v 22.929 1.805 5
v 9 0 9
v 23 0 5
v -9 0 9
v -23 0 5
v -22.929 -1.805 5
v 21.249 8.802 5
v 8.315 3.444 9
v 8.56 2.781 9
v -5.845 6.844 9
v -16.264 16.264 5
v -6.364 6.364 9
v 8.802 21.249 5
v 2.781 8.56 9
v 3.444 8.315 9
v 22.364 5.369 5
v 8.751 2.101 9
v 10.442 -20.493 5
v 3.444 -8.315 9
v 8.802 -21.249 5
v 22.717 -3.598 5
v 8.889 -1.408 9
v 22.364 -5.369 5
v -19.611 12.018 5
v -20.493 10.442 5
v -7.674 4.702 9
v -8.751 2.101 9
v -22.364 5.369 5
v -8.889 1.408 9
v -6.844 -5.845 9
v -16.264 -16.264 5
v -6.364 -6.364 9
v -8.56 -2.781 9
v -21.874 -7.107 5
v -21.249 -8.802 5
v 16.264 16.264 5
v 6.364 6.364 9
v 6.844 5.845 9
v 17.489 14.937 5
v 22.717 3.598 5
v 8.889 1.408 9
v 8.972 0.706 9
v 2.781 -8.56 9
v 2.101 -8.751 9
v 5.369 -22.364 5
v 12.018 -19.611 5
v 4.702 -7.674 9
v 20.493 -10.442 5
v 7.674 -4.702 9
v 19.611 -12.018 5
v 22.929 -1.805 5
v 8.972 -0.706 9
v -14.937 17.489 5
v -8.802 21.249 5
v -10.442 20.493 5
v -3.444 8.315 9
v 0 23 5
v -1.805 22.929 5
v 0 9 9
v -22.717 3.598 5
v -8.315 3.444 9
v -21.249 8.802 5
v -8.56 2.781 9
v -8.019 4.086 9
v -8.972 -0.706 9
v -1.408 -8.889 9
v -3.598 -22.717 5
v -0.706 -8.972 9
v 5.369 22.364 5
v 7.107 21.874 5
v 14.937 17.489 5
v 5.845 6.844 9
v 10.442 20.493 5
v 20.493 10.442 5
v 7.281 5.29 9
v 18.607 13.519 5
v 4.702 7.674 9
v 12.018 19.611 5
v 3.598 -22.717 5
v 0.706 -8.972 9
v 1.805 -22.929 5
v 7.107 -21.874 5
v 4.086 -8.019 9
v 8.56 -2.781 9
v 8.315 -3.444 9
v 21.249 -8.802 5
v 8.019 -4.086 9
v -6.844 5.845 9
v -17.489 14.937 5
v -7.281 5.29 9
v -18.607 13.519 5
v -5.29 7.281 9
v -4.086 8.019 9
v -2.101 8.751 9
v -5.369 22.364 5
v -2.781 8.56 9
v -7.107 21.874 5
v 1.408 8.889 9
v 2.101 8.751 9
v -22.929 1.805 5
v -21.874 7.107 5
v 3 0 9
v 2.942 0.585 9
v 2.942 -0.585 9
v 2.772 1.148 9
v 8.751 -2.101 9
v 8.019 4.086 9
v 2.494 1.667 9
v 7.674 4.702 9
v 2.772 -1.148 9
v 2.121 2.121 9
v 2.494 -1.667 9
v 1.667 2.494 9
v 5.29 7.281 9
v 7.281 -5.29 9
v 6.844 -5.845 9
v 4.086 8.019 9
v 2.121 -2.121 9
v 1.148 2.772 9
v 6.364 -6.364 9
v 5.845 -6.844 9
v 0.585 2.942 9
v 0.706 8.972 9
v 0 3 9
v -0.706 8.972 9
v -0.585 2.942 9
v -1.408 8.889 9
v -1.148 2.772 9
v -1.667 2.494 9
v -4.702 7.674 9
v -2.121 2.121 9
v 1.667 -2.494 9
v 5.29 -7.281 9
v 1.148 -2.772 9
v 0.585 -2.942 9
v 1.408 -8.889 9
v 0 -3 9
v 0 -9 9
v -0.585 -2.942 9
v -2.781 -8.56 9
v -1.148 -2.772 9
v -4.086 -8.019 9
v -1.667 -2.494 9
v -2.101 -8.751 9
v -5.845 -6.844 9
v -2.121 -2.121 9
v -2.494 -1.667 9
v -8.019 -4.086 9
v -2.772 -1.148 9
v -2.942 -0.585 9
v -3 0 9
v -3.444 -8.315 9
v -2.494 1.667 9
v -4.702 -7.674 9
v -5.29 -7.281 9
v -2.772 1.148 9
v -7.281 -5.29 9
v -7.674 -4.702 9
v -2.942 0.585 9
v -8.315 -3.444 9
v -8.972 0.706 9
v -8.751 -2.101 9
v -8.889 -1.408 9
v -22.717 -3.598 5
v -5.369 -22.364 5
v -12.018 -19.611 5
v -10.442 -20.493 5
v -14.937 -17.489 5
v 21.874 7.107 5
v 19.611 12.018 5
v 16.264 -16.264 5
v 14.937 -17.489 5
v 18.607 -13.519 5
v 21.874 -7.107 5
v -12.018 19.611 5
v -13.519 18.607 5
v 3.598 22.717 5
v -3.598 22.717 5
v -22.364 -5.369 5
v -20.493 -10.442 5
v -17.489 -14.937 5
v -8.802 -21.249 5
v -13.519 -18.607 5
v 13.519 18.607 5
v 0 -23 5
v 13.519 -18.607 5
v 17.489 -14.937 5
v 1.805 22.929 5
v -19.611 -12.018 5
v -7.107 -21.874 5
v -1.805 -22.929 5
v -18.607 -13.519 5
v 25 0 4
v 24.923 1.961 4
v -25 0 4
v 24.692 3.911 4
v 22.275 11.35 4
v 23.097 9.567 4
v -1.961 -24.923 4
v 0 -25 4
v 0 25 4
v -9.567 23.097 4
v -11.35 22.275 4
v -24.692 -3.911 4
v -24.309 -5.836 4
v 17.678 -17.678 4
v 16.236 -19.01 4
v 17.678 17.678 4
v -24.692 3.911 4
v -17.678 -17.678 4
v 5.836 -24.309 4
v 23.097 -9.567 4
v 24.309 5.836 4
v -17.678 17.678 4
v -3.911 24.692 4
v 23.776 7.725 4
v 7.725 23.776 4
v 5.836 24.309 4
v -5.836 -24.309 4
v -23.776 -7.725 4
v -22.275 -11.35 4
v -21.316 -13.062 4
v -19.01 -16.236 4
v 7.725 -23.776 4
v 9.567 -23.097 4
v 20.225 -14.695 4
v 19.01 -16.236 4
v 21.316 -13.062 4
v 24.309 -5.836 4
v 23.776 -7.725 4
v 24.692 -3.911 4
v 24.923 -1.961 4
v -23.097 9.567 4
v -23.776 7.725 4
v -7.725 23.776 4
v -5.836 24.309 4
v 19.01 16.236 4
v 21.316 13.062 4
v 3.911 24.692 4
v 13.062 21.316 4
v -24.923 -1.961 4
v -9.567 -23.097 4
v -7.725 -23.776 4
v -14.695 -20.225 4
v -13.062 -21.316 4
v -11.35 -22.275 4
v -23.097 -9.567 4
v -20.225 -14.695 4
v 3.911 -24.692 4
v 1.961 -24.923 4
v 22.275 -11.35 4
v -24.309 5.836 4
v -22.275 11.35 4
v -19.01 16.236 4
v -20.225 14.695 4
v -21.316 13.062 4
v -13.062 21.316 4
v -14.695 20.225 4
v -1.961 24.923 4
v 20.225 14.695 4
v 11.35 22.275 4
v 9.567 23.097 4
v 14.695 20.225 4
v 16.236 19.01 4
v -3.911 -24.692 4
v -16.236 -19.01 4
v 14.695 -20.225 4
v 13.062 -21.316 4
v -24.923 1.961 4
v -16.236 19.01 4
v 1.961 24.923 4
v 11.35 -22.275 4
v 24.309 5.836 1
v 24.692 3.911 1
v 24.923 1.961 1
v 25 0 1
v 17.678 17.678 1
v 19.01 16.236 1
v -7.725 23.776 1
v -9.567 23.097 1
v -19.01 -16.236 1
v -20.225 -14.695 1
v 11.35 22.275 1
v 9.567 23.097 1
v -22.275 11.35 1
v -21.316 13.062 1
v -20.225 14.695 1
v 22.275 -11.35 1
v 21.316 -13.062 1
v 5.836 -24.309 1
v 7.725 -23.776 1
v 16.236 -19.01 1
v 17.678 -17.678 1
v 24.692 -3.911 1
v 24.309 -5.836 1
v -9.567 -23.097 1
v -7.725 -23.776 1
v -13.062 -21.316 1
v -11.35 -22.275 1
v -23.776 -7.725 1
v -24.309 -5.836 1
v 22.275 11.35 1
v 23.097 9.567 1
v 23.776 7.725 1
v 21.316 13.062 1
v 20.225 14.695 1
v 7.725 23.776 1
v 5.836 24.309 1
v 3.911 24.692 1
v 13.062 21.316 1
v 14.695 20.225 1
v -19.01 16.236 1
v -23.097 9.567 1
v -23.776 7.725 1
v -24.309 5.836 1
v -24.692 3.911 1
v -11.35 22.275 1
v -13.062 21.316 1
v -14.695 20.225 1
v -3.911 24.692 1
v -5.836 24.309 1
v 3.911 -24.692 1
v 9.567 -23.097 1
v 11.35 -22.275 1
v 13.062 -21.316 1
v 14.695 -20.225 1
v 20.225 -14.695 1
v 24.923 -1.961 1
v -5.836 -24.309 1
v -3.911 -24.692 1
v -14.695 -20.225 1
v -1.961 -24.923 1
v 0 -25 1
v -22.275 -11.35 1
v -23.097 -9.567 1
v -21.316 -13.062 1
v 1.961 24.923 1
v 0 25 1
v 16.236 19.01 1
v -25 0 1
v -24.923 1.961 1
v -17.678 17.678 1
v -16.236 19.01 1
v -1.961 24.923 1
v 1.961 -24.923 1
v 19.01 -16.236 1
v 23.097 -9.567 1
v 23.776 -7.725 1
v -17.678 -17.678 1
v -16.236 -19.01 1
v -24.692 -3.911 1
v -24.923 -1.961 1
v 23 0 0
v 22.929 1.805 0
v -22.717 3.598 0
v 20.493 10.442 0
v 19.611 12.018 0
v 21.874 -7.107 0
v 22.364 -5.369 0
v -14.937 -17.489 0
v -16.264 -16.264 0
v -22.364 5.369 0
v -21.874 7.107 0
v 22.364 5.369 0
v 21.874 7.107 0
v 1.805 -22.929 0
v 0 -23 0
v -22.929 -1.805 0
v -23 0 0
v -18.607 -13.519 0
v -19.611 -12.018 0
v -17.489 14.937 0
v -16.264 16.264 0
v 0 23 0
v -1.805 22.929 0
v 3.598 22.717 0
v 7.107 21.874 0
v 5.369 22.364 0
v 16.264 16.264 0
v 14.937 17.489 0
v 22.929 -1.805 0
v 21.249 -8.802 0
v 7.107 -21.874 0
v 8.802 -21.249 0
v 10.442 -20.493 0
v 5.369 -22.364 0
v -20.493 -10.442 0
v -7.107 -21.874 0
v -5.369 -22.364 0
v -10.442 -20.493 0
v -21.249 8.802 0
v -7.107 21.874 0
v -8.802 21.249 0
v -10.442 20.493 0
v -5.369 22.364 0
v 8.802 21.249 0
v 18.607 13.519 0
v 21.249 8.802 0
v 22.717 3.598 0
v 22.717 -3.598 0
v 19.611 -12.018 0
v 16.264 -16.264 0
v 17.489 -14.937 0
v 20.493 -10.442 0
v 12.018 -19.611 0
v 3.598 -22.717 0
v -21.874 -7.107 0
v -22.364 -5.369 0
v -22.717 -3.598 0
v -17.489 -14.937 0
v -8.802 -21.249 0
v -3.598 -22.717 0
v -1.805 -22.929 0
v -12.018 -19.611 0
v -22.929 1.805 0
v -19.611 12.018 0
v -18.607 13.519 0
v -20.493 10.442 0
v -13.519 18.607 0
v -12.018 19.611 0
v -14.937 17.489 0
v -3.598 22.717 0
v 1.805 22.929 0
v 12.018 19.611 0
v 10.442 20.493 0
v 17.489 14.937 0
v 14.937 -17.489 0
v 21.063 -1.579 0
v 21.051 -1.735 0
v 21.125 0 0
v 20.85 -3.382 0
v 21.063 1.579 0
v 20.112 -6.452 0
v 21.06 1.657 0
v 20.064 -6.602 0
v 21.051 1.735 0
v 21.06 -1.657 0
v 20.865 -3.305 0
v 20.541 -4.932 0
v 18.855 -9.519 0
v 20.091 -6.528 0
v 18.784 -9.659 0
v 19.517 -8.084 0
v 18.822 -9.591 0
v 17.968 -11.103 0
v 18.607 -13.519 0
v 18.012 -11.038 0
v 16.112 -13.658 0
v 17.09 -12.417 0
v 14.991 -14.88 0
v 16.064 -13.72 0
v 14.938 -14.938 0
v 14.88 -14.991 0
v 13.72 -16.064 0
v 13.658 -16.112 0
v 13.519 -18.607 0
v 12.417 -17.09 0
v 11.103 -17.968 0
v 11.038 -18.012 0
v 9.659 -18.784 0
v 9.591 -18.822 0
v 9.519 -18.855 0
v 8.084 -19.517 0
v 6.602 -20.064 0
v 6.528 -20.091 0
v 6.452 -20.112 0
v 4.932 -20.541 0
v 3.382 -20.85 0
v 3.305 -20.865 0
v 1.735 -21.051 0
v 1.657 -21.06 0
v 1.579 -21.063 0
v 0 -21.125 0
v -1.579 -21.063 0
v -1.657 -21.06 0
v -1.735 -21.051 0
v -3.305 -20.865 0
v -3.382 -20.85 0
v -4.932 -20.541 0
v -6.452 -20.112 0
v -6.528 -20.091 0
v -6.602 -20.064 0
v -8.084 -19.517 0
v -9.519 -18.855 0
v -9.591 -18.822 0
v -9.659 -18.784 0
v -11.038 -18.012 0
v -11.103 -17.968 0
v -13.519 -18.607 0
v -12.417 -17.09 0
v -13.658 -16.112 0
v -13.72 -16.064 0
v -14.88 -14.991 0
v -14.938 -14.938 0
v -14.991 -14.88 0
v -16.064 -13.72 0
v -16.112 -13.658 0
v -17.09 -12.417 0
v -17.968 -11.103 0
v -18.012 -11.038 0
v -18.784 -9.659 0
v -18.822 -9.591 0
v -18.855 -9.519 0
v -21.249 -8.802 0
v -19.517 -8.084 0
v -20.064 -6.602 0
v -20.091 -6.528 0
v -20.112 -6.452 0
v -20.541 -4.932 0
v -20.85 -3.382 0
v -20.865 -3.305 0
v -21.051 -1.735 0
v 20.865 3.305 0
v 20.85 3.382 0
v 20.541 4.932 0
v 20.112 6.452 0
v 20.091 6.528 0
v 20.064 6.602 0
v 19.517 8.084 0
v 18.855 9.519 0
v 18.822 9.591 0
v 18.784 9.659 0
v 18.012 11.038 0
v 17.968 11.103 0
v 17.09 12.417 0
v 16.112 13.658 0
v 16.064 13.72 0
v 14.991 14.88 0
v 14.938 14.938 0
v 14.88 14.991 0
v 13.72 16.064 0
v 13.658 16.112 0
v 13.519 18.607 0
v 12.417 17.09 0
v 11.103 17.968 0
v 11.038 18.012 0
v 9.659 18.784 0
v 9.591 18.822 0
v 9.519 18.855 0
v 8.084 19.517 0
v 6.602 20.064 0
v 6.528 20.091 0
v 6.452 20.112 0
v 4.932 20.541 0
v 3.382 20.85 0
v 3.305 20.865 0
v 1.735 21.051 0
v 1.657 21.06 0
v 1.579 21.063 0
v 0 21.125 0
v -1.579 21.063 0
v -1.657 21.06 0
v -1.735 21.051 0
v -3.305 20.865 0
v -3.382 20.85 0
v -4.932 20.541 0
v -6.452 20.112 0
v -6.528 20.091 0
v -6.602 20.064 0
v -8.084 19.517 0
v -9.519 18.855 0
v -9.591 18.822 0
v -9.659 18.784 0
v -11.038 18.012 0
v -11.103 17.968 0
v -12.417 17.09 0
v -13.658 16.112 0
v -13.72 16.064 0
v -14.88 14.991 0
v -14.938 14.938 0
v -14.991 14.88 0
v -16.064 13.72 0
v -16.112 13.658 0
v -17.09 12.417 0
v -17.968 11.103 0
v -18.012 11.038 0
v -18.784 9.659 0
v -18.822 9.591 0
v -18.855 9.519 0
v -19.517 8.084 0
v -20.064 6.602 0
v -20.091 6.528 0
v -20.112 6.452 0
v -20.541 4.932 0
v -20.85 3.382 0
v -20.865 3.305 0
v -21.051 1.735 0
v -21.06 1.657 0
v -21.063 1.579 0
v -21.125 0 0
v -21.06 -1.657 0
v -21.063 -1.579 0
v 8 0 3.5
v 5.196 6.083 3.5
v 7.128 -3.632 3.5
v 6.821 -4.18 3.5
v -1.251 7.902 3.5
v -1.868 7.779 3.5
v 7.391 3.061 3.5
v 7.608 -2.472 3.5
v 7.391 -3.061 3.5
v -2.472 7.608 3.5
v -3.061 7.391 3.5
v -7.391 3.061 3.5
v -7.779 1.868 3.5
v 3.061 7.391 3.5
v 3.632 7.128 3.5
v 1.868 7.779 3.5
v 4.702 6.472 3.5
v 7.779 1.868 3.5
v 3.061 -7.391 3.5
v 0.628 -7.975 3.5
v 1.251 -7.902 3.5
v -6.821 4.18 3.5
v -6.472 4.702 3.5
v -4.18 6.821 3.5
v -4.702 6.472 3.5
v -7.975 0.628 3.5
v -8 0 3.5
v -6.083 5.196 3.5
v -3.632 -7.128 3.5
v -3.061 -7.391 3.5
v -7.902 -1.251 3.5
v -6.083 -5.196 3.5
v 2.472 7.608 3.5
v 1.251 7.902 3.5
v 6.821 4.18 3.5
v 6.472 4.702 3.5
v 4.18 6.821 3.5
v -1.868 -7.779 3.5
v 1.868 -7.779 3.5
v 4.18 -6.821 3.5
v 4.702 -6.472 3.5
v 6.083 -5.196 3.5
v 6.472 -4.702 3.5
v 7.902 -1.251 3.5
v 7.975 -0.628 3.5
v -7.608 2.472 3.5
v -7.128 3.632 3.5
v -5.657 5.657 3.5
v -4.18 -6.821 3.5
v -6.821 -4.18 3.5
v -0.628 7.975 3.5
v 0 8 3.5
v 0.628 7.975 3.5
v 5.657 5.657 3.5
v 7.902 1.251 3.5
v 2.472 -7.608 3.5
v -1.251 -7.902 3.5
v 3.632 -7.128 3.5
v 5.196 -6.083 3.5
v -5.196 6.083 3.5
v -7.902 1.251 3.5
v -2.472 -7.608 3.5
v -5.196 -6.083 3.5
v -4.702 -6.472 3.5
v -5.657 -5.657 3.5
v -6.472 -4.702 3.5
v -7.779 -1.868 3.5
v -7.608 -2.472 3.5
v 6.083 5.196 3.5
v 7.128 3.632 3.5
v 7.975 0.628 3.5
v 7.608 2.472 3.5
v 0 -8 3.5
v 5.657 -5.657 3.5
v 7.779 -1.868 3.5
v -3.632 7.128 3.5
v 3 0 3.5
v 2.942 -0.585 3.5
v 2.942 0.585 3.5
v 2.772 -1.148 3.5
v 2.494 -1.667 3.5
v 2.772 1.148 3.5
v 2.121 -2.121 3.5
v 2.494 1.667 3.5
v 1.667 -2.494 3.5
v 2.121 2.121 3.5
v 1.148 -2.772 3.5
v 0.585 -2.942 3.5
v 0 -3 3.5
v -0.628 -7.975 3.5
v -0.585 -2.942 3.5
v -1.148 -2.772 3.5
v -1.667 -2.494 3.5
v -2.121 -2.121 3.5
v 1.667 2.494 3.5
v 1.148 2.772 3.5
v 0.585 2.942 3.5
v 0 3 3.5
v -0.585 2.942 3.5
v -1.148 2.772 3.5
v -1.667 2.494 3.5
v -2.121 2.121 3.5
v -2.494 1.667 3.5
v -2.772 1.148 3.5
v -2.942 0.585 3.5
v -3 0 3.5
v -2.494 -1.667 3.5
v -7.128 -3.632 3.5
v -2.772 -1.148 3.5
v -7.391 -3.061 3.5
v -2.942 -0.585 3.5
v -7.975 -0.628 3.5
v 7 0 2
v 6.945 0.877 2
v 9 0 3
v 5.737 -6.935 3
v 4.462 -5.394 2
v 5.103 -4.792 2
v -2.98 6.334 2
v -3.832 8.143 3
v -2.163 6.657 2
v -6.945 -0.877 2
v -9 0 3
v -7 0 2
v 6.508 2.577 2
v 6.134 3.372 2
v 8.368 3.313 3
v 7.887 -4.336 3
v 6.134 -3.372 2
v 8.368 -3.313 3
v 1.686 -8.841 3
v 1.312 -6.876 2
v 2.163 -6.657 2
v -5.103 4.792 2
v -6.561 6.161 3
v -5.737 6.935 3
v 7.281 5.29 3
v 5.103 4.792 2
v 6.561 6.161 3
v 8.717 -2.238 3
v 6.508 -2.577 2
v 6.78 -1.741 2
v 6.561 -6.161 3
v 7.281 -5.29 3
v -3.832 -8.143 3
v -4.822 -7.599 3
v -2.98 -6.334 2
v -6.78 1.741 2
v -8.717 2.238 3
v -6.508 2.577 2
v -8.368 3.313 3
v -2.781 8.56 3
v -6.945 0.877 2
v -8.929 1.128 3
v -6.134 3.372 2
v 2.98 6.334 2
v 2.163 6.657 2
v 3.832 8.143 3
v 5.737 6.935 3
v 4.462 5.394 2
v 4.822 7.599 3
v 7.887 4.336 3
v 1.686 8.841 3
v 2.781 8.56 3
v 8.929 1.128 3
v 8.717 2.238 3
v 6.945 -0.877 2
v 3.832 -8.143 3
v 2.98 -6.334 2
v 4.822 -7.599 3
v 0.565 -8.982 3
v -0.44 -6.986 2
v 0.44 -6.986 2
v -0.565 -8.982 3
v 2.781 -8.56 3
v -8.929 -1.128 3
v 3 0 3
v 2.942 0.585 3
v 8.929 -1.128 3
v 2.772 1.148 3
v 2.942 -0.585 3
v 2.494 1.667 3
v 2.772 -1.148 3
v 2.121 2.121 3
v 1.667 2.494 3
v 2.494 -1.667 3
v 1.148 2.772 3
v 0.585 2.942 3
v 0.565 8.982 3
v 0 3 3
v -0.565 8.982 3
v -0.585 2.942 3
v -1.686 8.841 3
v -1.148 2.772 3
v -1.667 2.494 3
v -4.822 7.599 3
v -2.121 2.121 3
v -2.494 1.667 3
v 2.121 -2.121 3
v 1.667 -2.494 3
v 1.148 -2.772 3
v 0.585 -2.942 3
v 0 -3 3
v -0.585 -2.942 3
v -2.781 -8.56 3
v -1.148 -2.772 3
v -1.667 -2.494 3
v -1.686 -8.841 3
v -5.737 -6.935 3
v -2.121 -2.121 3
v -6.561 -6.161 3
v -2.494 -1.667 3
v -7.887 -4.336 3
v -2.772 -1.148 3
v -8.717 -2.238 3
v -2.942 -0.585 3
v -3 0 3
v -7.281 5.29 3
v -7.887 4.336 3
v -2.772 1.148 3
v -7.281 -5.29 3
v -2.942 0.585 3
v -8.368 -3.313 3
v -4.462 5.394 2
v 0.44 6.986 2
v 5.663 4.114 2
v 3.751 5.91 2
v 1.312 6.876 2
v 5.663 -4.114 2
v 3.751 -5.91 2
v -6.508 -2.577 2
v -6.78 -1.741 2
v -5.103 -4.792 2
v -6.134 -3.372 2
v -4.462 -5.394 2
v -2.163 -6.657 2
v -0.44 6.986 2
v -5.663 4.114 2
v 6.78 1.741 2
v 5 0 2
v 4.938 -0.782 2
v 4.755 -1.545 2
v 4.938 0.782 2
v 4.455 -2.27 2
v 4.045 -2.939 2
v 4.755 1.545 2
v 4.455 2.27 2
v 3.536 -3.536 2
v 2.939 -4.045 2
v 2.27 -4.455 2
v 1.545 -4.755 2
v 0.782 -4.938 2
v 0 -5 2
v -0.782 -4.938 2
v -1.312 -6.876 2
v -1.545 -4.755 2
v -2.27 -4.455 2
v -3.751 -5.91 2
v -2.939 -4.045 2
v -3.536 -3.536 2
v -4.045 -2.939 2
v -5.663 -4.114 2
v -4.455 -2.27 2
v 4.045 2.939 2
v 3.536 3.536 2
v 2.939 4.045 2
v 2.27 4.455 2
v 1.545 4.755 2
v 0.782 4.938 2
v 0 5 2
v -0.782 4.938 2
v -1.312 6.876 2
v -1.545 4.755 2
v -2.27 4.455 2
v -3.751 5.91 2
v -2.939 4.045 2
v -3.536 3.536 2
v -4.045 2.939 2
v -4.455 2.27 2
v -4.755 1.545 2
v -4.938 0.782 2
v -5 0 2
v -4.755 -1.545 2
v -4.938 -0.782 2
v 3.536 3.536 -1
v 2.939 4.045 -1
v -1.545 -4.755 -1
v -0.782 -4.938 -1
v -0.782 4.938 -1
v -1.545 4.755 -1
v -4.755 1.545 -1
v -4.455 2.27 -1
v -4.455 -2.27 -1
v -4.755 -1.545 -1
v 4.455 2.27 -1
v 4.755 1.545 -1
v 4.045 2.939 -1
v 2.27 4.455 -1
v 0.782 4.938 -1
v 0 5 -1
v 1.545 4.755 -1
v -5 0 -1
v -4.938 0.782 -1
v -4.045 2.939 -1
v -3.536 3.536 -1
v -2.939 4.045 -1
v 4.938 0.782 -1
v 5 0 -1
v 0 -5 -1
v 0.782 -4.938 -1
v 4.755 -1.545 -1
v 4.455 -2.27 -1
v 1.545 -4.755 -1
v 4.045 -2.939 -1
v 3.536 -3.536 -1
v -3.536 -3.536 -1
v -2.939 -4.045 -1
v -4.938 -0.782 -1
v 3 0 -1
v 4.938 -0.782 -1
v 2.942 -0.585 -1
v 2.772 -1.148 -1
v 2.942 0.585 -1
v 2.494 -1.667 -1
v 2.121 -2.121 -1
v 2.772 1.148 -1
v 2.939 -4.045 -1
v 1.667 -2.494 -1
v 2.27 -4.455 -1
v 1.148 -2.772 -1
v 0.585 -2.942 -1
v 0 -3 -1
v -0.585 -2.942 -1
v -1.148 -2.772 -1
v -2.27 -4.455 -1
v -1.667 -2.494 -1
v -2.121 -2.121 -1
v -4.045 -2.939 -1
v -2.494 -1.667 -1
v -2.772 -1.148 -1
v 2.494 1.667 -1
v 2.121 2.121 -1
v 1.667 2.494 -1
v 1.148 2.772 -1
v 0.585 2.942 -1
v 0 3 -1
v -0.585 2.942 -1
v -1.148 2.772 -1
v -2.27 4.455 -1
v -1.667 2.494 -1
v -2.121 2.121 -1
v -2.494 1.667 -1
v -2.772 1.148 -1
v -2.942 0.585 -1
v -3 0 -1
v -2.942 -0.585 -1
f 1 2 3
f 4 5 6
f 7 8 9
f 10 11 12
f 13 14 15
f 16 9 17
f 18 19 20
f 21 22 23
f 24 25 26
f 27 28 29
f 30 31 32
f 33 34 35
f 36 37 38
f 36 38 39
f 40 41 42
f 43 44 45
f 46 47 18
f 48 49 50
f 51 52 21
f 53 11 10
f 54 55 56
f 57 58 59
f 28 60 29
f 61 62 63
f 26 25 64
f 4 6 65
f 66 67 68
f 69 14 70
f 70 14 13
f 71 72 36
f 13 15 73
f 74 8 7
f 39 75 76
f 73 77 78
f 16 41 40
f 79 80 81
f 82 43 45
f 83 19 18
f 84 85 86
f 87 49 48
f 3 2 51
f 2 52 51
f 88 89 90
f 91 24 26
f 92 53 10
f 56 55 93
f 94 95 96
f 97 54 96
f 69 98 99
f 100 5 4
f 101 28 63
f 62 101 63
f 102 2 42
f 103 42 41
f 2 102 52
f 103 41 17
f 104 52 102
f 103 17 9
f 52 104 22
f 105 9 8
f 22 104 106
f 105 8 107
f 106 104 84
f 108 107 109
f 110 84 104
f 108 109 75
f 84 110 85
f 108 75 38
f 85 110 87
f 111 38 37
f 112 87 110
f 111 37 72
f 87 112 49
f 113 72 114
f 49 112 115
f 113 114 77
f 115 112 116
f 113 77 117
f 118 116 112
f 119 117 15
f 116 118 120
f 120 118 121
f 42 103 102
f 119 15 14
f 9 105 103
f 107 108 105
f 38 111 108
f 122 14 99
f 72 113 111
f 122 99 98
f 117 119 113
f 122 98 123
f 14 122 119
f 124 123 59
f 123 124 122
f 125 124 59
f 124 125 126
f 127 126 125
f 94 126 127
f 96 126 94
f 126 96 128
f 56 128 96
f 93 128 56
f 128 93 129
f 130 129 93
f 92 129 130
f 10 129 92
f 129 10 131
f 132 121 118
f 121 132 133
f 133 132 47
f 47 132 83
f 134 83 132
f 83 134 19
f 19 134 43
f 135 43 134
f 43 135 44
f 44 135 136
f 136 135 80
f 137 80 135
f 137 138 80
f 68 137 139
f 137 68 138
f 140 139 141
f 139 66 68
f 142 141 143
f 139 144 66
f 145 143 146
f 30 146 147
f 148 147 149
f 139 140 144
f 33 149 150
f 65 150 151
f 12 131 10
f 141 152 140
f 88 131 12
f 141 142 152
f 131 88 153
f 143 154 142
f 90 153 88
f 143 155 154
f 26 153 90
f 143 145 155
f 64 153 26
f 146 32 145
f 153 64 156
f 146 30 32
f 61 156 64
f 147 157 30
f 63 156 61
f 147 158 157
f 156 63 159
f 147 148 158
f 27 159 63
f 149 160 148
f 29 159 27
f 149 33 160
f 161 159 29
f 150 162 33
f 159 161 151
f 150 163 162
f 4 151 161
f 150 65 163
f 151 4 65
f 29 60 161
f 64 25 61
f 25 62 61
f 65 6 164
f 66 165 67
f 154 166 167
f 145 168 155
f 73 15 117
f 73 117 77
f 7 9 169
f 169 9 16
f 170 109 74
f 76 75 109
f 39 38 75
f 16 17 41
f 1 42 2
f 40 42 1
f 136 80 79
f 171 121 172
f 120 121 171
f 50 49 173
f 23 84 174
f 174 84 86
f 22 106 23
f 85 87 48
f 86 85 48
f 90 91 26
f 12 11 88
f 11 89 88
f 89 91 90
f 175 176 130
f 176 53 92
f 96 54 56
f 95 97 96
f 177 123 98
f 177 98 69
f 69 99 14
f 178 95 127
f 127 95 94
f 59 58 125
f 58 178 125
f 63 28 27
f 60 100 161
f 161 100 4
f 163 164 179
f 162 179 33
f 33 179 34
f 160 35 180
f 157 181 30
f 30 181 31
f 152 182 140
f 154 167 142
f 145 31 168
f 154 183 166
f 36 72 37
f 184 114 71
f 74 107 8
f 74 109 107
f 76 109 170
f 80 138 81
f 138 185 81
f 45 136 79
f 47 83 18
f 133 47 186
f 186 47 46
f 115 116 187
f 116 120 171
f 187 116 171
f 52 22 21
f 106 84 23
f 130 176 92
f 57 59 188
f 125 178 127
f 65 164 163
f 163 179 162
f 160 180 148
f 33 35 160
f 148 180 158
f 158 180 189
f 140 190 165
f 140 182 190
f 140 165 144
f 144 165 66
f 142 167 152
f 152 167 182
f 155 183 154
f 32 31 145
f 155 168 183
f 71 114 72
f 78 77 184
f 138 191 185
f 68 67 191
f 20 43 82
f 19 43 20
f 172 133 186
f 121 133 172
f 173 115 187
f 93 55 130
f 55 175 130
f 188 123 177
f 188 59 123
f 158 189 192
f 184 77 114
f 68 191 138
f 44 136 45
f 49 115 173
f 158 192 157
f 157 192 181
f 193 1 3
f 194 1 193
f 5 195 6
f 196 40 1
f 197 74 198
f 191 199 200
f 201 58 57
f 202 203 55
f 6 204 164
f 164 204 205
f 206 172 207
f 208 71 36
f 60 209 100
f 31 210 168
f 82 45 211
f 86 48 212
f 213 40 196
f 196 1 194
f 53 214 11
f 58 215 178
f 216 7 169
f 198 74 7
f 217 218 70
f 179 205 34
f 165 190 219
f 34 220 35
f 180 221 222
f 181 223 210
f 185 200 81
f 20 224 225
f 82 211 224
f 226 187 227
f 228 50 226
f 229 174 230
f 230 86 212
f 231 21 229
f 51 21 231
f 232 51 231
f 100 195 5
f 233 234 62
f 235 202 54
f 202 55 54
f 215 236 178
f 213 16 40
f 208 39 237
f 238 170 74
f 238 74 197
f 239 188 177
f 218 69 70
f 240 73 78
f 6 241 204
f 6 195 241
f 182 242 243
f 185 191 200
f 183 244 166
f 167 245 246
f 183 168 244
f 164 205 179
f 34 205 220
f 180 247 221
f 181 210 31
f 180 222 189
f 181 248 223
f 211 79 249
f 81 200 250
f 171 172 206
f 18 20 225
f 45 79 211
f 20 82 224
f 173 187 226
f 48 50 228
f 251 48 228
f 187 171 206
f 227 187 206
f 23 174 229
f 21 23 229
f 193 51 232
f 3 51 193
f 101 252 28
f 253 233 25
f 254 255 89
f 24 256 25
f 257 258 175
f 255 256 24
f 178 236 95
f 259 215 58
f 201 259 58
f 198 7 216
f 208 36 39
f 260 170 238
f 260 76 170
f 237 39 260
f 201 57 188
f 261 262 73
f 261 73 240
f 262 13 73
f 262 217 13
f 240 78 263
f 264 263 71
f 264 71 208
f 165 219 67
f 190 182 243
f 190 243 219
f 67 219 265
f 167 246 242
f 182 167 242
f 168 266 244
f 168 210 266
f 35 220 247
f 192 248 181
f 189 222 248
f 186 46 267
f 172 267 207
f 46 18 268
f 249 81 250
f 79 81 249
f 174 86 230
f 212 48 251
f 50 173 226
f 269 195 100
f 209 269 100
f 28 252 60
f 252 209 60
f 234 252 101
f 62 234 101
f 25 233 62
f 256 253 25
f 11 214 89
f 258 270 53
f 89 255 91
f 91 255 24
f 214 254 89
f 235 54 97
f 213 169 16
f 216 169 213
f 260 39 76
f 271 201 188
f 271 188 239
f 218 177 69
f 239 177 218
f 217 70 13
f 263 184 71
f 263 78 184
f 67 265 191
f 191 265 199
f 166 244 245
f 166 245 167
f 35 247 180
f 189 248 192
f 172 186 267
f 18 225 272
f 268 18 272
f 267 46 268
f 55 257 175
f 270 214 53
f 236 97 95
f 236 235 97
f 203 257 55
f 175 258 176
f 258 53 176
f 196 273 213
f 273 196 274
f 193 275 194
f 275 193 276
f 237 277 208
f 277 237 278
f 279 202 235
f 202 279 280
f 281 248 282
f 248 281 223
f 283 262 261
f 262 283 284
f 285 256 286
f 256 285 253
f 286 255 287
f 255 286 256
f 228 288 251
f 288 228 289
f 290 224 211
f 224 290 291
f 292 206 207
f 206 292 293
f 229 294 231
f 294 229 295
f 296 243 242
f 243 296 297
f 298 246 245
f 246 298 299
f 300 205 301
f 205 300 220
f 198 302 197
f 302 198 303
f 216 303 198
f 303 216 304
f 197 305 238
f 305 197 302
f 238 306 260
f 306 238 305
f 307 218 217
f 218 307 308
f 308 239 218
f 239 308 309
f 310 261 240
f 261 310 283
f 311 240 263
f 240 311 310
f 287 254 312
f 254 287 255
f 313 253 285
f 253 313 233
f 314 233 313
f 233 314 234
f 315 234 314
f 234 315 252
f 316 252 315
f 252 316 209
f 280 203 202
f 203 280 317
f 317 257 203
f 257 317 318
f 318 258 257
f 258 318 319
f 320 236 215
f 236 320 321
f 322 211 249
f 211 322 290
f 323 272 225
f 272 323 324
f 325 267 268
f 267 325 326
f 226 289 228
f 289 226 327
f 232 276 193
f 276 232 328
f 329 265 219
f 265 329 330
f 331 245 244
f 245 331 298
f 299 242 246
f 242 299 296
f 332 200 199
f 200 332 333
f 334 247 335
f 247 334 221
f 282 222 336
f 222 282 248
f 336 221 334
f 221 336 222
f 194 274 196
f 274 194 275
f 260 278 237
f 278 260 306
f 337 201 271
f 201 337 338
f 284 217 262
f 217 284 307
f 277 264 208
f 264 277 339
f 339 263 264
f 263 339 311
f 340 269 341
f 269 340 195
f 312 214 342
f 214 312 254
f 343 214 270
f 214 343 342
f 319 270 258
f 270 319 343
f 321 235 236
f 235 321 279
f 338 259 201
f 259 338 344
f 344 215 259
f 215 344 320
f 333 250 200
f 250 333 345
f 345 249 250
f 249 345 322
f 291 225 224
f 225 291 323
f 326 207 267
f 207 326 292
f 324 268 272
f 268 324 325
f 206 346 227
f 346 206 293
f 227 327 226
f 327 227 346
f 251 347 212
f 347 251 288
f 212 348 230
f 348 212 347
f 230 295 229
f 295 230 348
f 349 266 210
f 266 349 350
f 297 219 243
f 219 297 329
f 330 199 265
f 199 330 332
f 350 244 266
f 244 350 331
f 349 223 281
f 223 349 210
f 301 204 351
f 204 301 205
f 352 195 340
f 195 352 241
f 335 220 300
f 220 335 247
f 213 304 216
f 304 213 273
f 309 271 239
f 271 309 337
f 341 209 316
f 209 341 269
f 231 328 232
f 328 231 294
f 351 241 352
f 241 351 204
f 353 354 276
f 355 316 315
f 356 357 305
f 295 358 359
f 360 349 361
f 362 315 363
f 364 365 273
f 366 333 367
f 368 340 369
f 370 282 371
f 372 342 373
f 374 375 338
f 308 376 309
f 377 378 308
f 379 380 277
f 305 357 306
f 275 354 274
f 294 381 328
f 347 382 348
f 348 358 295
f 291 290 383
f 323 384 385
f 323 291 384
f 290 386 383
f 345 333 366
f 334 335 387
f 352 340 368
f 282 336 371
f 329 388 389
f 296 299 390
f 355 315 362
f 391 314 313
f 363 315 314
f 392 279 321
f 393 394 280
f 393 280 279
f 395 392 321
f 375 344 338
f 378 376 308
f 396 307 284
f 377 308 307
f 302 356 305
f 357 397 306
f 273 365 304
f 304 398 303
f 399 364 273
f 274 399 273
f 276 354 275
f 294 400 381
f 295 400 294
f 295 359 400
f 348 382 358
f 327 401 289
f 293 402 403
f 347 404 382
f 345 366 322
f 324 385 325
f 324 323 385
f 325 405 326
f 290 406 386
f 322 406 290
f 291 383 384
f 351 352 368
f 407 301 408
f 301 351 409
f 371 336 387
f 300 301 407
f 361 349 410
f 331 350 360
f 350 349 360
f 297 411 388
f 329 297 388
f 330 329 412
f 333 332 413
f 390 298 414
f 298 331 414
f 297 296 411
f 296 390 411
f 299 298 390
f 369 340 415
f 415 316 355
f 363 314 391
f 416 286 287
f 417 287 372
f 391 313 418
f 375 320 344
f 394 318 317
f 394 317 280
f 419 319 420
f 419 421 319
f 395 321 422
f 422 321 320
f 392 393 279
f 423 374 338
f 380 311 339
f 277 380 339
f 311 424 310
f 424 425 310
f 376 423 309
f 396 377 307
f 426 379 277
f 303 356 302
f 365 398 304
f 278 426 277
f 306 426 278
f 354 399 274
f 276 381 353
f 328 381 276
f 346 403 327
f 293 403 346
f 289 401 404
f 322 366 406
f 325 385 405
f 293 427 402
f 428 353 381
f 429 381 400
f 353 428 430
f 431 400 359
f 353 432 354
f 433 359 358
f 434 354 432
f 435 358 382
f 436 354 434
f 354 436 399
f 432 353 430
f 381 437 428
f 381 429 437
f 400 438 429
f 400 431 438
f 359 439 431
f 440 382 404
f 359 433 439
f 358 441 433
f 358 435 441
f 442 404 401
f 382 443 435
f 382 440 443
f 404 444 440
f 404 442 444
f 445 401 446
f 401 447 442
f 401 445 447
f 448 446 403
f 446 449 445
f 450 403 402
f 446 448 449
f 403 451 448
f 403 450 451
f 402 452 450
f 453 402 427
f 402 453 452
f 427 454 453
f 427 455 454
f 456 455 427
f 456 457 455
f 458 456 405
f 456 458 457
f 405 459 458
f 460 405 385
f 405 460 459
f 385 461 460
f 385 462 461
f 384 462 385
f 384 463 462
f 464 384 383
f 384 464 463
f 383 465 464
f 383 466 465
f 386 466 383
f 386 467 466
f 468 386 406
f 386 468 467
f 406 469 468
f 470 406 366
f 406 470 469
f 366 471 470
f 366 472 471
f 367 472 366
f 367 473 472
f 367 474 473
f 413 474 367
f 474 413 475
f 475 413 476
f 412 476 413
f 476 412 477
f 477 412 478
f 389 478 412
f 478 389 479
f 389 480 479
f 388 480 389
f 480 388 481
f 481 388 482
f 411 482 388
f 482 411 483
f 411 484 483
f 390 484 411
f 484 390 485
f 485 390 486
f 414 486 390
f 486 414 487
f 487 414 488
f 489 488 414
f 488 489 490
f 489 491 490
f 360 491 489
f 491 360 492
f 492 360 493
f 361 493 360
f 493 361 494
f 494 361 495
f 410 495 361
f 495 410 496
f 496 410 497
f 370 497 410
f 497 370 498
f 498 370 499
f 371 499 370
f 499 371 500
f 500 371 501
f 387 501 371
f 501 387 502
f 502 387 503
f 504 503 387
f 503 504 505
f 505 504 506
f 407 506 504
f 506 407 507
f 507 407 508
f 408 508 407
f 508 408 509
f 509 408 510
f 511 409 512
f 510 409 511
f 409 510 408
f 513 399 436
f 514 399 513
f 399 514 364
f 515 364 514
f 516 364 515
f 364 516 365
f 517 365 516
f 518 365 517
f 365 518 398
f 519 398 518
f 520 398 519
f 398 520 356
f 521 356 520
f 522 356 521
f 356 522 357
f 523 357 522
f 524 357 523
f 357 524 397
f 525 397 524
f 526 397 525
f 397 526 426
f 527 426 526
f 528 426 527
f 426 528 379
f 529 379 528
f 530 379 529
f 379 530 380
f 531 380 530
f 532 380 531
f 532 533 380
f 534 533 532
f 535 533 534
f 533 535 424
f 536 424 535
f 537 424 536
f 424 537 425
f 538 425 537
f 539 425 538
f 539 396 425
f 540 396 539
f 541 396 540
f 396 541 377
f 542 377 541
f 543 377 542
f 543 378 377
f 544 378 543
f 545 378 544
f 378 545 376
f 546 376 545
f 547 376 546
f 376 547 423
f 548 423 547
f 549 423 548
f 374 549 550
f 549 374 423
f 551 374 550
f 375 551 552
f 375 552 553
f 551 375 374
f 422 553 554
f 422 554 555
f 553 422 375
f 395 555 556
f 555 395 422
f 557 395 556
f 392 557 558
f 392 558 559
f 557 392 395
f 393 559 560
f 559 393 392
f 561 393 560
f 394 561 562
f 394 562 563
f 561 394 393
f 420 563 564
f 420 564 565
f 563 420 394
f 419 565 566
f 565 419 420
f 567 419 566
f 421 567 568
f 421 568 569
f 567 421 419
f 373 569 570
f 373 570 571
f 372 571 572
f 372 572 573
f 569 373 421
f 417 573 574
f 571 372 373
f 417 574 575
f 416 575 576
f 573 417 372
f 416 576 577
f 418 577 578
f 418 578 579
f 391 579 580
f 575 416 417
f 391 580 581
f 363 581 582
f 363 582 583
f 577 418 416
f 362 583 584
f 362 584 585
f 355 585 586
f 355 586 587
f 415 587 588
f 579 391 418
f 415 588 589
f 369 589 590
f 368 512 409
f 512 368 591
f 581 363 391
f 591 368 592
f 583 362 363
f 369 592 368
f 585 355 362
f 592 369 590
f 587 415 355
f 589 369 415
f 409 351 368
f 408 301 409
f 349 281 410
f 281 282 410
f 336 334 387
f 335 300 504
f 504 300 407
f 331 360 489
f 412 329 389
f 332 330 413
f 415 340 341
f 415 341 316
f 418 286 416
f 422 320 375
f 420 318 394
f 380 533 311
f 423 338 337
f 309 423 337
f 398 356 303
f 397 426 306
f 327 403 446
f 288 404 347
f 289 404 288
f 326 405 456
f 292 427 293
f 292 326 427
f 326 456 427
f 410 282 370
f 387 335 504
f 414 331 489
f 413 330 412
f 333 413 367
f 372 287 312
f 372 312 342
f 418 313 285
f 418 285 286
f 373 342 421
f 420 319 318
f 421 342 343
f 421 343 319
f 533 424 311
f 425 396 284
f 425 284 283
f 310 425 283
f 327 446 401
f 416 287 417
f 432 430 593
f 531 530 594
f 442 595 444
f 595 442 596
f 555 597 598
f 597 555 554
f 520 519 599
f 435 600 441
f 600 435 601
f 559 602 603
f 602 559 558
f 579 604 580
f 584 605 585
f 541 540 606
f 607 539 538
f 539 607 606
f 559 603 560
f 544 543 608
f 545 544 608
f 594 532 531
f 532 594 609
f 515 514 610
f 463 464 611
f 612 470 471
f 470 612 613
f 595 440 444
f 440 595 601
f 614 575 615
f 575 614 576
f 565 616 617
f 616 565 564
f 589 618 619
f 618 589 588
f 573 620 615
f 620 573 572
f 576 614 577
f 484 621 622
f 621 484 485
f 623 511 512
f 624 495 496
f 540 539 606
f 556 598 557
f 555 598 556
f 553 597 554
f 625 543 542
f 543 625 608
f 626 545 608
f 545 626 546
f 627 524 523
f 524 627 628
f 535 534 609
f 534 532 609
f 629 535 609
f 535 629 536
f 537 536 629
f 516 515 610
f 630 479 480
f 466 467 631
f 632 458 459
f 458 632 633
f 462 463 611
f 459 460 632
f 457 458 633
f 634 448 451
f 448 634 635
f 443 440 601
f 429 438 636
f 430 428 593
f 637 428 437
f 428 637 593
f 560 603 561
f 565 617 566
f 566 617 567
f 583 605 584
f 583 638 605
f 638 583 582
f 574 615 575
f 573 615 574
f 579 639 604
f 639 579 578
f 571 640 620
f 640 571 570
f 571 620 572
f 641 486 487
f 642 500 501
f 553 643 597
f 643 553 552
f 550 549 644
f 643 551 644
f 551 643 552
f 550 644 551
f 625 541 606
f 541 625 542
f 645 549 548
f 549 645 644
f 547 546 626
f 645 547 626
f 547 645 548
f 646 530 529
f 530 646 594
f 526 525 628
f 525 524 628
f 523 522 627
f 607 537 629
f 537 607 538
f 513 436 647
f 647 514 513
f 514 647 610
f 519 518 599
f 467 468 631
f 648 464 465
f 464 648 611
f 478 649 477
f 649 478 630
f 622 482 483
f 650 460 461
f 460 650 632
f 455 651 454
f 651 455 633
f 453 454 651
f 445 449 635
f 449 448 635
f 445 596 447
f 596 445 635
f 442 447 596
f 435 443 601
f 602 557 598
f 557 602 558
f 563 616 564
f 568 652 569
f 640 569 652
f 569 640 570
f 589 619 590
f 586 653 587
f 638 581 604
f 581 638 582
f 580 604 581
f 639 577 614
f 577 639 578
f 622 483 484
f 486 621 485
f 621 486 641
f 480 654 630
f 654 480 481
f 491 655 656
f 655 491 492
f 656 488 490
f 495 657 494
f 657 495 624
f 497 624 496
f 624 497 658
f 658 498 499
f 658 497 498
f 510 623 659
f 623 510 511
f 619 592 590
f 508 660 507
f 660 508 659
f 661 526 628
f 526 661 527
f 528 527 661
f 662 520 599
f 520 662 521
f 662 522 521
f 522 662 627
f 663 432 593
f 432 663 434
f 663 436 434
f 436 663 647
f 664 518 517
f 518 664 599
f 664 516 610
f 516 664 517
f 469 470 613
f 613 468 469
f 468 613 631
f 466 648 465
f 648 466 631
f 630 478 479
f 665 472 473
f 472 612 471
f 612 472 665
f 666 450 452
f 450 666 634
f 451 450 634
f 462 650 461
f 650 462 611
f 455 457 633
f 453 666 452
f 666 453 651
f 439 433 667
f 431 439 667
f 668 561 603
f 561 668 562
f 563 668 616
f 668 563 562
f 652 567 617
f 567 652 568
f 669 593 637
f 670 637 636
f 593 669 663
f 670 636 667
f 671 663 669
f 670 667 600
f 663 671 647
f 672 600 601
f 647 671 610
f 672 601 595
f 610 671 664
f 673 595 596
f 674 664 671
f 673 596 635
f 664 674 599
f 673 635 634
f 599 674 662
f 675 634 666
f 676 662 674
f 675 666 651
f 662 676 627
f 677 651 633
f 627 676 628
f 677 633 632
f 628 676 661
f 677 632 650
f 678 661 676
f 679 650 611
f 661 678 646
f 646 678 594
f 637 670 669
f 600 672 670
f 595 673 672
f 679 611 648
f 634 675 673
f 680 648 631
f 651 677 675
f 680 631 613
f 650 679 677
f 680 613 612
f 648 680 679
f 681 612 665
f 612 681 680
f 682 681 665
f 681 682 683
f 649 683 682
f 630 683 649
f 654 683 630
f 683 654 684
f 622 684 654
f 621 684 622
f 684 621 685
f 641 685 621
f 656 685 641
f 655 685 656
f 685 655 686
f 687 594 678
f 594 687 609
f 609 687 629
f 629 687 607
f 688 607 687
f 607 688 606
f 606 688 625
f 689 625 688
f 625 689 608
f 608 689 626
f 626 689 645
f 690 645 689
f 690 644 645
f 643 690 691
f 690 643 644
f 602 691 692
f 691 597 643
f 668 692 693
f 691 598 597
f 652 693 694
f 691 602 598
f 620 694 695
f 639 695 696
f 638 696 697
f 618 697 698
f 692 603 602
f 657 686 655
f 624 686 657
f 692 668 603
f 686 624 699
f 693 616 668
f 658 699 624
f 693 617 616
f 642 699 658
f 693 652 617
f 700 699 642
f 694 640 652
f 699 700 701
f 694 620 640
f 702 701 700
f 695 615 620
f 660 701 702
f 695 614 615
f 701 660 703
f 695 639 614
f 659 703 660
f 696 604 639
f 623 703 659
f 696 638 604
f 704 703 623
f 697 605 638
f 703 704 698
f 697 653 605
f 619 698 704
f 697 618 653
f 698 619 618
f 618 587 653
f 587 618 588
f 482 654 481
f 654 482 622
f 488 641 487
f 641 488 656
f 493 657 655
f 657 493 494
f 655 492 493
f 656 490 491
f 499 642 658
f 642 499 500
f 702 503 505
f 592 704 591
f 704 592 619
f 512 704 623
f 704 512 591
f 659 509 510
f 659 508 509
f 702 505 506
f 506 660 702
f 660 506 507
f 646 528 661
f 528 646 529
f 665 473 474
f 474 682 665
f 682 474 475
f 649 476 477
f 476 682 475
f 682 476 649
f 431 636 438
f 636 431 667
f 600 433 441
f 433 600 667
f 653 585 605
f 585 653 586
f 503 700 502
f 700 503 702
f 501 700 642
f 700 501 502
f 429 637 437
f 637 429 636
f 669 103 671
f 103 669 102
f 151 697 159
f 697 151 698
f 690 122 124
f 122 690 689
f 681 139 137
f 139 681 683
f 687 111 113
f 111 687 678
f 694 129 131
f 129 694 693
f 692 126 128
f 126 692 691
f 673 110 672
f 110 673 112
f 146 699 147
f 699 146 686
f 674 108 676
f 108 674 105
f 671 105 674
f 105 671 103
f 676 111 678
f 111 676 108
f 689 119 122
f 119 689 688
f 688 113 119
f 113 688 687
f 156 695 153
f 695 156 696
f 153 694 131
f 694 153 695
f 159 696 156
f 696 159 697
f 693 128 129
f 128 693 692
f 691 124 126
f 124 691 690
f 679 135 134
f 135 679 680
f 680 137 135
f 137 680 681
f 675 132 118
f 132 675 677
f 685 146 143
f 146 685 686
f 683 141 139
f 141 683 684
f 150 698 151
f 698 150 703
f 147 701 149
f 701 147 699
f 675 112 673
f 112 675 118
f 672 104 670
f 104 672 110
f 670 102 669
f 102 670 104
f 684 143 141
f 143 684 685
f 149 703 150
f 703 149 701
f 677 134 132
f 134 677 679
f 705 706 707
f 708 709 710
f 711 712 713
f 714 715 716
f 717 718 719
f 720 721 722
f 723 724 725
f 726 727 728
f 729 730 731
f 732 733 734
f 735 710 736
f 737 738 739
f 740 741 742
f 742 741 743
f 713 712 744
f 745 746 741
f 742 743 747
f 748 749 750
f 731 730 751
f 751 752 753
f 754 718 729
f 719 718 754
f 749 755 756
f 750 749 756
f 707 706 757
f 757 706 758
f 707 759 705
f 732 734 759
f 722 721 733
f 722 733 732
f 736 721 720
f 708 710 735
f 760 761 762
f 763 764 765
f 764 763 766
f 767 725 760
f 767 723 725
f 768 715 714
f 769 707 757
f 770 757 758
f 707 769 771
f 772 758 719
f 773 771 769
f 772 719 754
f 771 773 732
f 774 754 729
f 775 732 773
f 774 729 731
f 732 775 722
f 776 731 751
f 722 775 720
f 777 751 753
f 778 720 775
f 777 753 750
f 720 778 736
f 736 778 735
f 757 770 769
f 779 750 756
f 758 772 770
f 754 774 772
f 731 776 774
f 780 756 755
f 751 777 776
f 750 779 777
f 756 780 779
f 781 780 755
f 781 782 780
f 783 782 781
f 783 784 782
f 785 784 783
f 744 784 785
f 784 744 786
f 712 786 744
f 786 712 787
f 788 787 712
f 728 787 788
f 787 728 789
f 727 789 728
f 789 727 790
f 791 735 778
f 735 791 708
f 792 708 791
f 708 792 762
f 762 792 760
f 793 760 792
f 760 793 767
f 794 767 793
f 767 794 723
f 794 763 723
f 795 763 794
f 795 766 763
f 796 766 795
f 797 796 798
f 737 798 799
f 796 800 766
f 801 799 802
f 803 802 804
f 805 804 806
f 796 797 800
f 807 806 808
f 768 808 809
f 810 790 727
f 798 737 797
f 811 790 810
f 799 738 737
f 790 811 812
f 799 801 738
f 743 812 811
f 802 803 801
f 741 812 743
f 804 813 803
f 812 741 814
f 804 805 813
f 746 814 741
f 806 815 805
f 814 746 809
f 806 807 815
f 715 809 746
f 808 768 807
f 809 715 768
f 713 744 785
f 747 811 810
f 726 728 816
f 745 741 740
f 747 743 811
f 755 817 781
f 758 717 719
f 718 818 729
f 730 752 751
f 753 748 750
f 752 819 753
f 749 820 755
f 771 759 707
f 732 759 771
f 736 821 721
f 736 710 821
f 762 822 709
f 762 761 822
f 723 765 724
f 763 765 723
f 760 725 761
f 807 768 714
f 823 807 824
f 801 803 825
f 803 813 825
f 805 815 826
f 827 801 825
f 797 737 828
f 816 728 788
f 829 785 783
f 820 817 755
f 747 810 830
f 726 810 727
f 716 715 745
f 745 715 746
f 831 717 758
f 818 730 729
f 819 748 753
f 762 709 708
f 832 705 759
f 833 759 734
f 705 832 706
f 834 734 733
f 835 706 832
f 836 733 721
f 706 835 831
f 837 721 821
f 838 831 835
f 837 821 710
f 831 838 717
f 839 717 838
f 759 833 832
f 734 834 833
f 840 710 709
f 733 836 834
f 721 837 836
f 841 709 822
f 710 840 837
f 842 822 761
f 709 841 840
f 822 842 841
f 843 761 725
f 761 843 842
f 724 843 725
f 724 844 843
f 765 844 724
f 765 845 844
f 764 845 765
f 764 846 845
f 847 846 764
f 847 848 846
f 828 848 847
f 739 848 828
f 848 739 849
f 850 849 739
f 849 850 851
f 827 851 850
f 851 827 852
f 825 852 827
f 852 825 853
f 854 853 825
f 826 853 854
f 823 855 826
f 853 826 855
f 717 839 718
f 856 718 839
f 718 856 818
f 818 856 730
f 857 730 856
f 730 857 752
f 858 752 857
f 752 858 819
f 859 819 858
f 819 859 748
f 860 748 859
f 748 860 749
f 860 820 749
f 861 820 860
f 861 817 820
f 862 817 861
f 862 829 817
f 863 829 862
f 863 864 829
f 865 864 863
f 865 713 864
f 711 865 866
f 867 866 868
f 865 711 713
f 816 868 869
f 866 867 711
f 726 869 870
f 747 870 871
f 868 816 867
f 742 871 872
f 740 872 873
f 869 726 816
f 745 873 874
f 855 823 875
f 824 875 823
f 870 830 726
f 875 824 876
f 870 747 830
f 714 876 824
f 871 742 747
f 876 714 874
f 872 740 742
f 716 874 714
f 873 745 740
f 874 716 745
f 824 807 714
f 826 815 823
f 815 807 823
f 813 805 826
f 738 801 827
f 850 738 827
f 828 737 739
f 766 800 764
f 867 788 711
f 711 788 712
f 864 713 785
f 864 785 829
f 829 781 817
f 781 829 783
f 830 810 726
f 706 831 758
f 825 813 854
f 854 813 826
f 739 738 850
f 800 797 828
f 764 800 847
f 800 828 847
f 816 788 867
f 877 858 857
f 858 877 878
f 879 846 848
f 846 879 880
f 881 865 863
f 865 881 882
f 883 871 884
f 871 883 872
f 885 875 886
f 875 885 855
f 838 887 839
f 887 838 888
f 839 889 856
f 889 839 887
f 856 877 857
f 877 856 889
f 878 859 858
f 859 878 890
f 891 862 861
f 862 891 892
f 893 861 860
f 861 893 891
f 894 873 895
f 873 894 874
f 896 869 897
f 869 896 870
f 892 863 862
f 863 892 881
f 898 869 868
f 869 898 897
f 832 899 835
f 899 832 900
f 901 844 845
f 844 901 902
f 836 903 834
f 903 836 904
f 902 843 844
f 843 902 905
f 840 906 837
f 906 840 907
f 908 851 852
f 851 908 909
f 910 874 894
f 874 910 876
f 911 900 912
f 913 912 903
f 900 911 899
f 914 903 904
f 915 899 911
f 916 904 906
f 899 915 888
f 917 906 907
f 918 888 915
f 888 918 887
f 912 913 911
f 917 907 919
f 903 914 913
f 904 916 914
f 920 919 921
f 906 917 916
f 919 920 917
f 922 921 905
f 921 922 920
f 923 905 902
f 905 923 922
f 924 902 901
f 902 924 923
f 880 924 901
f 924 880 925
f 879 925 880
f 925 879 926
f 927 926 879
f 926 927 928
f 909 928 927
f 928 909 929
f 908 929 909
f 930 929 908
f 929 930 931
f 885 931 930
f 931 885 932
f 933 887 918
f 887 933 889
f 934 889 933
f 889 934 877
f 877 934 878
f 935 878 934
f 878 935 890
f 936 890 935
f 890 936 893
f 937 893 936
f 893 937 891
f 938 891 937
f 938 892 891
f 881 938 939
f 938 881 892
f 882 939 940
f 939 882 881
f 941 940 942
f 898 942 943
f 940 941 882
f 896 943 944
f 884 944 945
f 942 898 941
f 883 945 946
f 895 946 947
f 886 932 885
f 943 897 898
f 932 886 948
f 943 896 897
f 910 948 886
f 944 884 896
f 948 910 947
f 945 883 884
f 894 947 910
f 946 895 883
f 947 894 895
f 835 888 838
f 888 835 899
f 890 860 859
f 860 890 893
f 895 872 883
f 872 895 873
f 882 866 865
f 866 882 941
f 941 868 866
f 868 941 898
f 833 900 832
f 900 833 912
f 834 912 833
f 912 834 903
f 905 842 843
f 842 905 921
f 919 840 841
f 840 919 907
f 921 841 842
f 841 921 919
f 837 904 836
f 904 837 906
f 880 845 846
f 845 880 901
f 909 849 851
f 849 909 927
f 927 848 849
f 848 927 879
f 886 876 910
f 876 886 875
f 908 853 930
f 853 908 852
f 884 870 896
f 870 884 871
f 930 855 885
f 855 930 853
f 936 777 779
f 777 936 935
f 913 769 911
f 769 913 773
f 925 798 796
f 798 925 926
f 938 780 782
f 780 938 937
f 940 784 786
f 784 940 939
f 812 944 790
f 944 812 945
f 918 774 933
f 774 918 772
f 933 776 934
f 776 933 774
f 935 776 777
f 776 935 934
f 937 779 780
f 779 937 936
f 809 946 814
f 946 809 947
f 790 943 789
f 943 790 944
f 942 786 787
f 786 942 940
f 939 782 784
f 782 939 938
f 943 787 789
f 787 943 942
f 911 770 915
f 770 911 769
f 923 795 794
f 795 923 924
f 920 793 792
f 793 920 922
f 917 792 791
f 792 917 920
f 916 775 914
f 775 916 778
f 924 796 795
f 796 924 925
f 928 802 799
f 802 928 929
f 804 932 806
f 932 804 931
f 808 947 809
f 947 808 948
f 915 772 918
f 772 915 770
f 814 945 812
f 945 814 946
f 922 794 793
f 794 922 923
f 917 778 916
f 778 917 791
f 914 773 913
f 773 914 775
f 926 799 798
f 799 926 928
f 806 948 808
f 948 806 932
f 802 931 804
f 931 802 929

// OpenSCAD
difference(){ //road wheel
	union() {	//road wheel
		translate([0,0,5])
			cylinder(4,23,9, $fn=80);
		translate([0,0,4])
			cylinder(1,25,23, $fn=80);
		translate([0,0,1])
			cylinder(3,25,25, $fn=80);
		translate([0,0,0])
			cylinder(1,23,25, $fn=80);
	}//union of road wheel
	translate([0,0,-0.5])
		cylinder(4,23,8, $fn=80);
	translate([0,0,-5])
		cylinder(20,3,3, $fn=32);
}//union of road wheel

difference(){ //road wheel internal part
	union() {	//road wheel internal part
		translate([0,0,2])
			cylinder(1,7,9, $fn=50);
		translate([0,0,-1])
			cylinder(3,5,5, $fn=40);
	} //difference of road wheel internal part
	translate([0,0,-5])
		cylinder(20,3,3, $fn=32);
}//union of road wheel internal part

/*
translate([60,0,0])
rotate_extrude(angle=360, convexity=120, $fn=100)
	rotate([0,0,90])	
		import("../dxf/Tiger800mmWheel_s16.dxf", $fn=60);
*/
